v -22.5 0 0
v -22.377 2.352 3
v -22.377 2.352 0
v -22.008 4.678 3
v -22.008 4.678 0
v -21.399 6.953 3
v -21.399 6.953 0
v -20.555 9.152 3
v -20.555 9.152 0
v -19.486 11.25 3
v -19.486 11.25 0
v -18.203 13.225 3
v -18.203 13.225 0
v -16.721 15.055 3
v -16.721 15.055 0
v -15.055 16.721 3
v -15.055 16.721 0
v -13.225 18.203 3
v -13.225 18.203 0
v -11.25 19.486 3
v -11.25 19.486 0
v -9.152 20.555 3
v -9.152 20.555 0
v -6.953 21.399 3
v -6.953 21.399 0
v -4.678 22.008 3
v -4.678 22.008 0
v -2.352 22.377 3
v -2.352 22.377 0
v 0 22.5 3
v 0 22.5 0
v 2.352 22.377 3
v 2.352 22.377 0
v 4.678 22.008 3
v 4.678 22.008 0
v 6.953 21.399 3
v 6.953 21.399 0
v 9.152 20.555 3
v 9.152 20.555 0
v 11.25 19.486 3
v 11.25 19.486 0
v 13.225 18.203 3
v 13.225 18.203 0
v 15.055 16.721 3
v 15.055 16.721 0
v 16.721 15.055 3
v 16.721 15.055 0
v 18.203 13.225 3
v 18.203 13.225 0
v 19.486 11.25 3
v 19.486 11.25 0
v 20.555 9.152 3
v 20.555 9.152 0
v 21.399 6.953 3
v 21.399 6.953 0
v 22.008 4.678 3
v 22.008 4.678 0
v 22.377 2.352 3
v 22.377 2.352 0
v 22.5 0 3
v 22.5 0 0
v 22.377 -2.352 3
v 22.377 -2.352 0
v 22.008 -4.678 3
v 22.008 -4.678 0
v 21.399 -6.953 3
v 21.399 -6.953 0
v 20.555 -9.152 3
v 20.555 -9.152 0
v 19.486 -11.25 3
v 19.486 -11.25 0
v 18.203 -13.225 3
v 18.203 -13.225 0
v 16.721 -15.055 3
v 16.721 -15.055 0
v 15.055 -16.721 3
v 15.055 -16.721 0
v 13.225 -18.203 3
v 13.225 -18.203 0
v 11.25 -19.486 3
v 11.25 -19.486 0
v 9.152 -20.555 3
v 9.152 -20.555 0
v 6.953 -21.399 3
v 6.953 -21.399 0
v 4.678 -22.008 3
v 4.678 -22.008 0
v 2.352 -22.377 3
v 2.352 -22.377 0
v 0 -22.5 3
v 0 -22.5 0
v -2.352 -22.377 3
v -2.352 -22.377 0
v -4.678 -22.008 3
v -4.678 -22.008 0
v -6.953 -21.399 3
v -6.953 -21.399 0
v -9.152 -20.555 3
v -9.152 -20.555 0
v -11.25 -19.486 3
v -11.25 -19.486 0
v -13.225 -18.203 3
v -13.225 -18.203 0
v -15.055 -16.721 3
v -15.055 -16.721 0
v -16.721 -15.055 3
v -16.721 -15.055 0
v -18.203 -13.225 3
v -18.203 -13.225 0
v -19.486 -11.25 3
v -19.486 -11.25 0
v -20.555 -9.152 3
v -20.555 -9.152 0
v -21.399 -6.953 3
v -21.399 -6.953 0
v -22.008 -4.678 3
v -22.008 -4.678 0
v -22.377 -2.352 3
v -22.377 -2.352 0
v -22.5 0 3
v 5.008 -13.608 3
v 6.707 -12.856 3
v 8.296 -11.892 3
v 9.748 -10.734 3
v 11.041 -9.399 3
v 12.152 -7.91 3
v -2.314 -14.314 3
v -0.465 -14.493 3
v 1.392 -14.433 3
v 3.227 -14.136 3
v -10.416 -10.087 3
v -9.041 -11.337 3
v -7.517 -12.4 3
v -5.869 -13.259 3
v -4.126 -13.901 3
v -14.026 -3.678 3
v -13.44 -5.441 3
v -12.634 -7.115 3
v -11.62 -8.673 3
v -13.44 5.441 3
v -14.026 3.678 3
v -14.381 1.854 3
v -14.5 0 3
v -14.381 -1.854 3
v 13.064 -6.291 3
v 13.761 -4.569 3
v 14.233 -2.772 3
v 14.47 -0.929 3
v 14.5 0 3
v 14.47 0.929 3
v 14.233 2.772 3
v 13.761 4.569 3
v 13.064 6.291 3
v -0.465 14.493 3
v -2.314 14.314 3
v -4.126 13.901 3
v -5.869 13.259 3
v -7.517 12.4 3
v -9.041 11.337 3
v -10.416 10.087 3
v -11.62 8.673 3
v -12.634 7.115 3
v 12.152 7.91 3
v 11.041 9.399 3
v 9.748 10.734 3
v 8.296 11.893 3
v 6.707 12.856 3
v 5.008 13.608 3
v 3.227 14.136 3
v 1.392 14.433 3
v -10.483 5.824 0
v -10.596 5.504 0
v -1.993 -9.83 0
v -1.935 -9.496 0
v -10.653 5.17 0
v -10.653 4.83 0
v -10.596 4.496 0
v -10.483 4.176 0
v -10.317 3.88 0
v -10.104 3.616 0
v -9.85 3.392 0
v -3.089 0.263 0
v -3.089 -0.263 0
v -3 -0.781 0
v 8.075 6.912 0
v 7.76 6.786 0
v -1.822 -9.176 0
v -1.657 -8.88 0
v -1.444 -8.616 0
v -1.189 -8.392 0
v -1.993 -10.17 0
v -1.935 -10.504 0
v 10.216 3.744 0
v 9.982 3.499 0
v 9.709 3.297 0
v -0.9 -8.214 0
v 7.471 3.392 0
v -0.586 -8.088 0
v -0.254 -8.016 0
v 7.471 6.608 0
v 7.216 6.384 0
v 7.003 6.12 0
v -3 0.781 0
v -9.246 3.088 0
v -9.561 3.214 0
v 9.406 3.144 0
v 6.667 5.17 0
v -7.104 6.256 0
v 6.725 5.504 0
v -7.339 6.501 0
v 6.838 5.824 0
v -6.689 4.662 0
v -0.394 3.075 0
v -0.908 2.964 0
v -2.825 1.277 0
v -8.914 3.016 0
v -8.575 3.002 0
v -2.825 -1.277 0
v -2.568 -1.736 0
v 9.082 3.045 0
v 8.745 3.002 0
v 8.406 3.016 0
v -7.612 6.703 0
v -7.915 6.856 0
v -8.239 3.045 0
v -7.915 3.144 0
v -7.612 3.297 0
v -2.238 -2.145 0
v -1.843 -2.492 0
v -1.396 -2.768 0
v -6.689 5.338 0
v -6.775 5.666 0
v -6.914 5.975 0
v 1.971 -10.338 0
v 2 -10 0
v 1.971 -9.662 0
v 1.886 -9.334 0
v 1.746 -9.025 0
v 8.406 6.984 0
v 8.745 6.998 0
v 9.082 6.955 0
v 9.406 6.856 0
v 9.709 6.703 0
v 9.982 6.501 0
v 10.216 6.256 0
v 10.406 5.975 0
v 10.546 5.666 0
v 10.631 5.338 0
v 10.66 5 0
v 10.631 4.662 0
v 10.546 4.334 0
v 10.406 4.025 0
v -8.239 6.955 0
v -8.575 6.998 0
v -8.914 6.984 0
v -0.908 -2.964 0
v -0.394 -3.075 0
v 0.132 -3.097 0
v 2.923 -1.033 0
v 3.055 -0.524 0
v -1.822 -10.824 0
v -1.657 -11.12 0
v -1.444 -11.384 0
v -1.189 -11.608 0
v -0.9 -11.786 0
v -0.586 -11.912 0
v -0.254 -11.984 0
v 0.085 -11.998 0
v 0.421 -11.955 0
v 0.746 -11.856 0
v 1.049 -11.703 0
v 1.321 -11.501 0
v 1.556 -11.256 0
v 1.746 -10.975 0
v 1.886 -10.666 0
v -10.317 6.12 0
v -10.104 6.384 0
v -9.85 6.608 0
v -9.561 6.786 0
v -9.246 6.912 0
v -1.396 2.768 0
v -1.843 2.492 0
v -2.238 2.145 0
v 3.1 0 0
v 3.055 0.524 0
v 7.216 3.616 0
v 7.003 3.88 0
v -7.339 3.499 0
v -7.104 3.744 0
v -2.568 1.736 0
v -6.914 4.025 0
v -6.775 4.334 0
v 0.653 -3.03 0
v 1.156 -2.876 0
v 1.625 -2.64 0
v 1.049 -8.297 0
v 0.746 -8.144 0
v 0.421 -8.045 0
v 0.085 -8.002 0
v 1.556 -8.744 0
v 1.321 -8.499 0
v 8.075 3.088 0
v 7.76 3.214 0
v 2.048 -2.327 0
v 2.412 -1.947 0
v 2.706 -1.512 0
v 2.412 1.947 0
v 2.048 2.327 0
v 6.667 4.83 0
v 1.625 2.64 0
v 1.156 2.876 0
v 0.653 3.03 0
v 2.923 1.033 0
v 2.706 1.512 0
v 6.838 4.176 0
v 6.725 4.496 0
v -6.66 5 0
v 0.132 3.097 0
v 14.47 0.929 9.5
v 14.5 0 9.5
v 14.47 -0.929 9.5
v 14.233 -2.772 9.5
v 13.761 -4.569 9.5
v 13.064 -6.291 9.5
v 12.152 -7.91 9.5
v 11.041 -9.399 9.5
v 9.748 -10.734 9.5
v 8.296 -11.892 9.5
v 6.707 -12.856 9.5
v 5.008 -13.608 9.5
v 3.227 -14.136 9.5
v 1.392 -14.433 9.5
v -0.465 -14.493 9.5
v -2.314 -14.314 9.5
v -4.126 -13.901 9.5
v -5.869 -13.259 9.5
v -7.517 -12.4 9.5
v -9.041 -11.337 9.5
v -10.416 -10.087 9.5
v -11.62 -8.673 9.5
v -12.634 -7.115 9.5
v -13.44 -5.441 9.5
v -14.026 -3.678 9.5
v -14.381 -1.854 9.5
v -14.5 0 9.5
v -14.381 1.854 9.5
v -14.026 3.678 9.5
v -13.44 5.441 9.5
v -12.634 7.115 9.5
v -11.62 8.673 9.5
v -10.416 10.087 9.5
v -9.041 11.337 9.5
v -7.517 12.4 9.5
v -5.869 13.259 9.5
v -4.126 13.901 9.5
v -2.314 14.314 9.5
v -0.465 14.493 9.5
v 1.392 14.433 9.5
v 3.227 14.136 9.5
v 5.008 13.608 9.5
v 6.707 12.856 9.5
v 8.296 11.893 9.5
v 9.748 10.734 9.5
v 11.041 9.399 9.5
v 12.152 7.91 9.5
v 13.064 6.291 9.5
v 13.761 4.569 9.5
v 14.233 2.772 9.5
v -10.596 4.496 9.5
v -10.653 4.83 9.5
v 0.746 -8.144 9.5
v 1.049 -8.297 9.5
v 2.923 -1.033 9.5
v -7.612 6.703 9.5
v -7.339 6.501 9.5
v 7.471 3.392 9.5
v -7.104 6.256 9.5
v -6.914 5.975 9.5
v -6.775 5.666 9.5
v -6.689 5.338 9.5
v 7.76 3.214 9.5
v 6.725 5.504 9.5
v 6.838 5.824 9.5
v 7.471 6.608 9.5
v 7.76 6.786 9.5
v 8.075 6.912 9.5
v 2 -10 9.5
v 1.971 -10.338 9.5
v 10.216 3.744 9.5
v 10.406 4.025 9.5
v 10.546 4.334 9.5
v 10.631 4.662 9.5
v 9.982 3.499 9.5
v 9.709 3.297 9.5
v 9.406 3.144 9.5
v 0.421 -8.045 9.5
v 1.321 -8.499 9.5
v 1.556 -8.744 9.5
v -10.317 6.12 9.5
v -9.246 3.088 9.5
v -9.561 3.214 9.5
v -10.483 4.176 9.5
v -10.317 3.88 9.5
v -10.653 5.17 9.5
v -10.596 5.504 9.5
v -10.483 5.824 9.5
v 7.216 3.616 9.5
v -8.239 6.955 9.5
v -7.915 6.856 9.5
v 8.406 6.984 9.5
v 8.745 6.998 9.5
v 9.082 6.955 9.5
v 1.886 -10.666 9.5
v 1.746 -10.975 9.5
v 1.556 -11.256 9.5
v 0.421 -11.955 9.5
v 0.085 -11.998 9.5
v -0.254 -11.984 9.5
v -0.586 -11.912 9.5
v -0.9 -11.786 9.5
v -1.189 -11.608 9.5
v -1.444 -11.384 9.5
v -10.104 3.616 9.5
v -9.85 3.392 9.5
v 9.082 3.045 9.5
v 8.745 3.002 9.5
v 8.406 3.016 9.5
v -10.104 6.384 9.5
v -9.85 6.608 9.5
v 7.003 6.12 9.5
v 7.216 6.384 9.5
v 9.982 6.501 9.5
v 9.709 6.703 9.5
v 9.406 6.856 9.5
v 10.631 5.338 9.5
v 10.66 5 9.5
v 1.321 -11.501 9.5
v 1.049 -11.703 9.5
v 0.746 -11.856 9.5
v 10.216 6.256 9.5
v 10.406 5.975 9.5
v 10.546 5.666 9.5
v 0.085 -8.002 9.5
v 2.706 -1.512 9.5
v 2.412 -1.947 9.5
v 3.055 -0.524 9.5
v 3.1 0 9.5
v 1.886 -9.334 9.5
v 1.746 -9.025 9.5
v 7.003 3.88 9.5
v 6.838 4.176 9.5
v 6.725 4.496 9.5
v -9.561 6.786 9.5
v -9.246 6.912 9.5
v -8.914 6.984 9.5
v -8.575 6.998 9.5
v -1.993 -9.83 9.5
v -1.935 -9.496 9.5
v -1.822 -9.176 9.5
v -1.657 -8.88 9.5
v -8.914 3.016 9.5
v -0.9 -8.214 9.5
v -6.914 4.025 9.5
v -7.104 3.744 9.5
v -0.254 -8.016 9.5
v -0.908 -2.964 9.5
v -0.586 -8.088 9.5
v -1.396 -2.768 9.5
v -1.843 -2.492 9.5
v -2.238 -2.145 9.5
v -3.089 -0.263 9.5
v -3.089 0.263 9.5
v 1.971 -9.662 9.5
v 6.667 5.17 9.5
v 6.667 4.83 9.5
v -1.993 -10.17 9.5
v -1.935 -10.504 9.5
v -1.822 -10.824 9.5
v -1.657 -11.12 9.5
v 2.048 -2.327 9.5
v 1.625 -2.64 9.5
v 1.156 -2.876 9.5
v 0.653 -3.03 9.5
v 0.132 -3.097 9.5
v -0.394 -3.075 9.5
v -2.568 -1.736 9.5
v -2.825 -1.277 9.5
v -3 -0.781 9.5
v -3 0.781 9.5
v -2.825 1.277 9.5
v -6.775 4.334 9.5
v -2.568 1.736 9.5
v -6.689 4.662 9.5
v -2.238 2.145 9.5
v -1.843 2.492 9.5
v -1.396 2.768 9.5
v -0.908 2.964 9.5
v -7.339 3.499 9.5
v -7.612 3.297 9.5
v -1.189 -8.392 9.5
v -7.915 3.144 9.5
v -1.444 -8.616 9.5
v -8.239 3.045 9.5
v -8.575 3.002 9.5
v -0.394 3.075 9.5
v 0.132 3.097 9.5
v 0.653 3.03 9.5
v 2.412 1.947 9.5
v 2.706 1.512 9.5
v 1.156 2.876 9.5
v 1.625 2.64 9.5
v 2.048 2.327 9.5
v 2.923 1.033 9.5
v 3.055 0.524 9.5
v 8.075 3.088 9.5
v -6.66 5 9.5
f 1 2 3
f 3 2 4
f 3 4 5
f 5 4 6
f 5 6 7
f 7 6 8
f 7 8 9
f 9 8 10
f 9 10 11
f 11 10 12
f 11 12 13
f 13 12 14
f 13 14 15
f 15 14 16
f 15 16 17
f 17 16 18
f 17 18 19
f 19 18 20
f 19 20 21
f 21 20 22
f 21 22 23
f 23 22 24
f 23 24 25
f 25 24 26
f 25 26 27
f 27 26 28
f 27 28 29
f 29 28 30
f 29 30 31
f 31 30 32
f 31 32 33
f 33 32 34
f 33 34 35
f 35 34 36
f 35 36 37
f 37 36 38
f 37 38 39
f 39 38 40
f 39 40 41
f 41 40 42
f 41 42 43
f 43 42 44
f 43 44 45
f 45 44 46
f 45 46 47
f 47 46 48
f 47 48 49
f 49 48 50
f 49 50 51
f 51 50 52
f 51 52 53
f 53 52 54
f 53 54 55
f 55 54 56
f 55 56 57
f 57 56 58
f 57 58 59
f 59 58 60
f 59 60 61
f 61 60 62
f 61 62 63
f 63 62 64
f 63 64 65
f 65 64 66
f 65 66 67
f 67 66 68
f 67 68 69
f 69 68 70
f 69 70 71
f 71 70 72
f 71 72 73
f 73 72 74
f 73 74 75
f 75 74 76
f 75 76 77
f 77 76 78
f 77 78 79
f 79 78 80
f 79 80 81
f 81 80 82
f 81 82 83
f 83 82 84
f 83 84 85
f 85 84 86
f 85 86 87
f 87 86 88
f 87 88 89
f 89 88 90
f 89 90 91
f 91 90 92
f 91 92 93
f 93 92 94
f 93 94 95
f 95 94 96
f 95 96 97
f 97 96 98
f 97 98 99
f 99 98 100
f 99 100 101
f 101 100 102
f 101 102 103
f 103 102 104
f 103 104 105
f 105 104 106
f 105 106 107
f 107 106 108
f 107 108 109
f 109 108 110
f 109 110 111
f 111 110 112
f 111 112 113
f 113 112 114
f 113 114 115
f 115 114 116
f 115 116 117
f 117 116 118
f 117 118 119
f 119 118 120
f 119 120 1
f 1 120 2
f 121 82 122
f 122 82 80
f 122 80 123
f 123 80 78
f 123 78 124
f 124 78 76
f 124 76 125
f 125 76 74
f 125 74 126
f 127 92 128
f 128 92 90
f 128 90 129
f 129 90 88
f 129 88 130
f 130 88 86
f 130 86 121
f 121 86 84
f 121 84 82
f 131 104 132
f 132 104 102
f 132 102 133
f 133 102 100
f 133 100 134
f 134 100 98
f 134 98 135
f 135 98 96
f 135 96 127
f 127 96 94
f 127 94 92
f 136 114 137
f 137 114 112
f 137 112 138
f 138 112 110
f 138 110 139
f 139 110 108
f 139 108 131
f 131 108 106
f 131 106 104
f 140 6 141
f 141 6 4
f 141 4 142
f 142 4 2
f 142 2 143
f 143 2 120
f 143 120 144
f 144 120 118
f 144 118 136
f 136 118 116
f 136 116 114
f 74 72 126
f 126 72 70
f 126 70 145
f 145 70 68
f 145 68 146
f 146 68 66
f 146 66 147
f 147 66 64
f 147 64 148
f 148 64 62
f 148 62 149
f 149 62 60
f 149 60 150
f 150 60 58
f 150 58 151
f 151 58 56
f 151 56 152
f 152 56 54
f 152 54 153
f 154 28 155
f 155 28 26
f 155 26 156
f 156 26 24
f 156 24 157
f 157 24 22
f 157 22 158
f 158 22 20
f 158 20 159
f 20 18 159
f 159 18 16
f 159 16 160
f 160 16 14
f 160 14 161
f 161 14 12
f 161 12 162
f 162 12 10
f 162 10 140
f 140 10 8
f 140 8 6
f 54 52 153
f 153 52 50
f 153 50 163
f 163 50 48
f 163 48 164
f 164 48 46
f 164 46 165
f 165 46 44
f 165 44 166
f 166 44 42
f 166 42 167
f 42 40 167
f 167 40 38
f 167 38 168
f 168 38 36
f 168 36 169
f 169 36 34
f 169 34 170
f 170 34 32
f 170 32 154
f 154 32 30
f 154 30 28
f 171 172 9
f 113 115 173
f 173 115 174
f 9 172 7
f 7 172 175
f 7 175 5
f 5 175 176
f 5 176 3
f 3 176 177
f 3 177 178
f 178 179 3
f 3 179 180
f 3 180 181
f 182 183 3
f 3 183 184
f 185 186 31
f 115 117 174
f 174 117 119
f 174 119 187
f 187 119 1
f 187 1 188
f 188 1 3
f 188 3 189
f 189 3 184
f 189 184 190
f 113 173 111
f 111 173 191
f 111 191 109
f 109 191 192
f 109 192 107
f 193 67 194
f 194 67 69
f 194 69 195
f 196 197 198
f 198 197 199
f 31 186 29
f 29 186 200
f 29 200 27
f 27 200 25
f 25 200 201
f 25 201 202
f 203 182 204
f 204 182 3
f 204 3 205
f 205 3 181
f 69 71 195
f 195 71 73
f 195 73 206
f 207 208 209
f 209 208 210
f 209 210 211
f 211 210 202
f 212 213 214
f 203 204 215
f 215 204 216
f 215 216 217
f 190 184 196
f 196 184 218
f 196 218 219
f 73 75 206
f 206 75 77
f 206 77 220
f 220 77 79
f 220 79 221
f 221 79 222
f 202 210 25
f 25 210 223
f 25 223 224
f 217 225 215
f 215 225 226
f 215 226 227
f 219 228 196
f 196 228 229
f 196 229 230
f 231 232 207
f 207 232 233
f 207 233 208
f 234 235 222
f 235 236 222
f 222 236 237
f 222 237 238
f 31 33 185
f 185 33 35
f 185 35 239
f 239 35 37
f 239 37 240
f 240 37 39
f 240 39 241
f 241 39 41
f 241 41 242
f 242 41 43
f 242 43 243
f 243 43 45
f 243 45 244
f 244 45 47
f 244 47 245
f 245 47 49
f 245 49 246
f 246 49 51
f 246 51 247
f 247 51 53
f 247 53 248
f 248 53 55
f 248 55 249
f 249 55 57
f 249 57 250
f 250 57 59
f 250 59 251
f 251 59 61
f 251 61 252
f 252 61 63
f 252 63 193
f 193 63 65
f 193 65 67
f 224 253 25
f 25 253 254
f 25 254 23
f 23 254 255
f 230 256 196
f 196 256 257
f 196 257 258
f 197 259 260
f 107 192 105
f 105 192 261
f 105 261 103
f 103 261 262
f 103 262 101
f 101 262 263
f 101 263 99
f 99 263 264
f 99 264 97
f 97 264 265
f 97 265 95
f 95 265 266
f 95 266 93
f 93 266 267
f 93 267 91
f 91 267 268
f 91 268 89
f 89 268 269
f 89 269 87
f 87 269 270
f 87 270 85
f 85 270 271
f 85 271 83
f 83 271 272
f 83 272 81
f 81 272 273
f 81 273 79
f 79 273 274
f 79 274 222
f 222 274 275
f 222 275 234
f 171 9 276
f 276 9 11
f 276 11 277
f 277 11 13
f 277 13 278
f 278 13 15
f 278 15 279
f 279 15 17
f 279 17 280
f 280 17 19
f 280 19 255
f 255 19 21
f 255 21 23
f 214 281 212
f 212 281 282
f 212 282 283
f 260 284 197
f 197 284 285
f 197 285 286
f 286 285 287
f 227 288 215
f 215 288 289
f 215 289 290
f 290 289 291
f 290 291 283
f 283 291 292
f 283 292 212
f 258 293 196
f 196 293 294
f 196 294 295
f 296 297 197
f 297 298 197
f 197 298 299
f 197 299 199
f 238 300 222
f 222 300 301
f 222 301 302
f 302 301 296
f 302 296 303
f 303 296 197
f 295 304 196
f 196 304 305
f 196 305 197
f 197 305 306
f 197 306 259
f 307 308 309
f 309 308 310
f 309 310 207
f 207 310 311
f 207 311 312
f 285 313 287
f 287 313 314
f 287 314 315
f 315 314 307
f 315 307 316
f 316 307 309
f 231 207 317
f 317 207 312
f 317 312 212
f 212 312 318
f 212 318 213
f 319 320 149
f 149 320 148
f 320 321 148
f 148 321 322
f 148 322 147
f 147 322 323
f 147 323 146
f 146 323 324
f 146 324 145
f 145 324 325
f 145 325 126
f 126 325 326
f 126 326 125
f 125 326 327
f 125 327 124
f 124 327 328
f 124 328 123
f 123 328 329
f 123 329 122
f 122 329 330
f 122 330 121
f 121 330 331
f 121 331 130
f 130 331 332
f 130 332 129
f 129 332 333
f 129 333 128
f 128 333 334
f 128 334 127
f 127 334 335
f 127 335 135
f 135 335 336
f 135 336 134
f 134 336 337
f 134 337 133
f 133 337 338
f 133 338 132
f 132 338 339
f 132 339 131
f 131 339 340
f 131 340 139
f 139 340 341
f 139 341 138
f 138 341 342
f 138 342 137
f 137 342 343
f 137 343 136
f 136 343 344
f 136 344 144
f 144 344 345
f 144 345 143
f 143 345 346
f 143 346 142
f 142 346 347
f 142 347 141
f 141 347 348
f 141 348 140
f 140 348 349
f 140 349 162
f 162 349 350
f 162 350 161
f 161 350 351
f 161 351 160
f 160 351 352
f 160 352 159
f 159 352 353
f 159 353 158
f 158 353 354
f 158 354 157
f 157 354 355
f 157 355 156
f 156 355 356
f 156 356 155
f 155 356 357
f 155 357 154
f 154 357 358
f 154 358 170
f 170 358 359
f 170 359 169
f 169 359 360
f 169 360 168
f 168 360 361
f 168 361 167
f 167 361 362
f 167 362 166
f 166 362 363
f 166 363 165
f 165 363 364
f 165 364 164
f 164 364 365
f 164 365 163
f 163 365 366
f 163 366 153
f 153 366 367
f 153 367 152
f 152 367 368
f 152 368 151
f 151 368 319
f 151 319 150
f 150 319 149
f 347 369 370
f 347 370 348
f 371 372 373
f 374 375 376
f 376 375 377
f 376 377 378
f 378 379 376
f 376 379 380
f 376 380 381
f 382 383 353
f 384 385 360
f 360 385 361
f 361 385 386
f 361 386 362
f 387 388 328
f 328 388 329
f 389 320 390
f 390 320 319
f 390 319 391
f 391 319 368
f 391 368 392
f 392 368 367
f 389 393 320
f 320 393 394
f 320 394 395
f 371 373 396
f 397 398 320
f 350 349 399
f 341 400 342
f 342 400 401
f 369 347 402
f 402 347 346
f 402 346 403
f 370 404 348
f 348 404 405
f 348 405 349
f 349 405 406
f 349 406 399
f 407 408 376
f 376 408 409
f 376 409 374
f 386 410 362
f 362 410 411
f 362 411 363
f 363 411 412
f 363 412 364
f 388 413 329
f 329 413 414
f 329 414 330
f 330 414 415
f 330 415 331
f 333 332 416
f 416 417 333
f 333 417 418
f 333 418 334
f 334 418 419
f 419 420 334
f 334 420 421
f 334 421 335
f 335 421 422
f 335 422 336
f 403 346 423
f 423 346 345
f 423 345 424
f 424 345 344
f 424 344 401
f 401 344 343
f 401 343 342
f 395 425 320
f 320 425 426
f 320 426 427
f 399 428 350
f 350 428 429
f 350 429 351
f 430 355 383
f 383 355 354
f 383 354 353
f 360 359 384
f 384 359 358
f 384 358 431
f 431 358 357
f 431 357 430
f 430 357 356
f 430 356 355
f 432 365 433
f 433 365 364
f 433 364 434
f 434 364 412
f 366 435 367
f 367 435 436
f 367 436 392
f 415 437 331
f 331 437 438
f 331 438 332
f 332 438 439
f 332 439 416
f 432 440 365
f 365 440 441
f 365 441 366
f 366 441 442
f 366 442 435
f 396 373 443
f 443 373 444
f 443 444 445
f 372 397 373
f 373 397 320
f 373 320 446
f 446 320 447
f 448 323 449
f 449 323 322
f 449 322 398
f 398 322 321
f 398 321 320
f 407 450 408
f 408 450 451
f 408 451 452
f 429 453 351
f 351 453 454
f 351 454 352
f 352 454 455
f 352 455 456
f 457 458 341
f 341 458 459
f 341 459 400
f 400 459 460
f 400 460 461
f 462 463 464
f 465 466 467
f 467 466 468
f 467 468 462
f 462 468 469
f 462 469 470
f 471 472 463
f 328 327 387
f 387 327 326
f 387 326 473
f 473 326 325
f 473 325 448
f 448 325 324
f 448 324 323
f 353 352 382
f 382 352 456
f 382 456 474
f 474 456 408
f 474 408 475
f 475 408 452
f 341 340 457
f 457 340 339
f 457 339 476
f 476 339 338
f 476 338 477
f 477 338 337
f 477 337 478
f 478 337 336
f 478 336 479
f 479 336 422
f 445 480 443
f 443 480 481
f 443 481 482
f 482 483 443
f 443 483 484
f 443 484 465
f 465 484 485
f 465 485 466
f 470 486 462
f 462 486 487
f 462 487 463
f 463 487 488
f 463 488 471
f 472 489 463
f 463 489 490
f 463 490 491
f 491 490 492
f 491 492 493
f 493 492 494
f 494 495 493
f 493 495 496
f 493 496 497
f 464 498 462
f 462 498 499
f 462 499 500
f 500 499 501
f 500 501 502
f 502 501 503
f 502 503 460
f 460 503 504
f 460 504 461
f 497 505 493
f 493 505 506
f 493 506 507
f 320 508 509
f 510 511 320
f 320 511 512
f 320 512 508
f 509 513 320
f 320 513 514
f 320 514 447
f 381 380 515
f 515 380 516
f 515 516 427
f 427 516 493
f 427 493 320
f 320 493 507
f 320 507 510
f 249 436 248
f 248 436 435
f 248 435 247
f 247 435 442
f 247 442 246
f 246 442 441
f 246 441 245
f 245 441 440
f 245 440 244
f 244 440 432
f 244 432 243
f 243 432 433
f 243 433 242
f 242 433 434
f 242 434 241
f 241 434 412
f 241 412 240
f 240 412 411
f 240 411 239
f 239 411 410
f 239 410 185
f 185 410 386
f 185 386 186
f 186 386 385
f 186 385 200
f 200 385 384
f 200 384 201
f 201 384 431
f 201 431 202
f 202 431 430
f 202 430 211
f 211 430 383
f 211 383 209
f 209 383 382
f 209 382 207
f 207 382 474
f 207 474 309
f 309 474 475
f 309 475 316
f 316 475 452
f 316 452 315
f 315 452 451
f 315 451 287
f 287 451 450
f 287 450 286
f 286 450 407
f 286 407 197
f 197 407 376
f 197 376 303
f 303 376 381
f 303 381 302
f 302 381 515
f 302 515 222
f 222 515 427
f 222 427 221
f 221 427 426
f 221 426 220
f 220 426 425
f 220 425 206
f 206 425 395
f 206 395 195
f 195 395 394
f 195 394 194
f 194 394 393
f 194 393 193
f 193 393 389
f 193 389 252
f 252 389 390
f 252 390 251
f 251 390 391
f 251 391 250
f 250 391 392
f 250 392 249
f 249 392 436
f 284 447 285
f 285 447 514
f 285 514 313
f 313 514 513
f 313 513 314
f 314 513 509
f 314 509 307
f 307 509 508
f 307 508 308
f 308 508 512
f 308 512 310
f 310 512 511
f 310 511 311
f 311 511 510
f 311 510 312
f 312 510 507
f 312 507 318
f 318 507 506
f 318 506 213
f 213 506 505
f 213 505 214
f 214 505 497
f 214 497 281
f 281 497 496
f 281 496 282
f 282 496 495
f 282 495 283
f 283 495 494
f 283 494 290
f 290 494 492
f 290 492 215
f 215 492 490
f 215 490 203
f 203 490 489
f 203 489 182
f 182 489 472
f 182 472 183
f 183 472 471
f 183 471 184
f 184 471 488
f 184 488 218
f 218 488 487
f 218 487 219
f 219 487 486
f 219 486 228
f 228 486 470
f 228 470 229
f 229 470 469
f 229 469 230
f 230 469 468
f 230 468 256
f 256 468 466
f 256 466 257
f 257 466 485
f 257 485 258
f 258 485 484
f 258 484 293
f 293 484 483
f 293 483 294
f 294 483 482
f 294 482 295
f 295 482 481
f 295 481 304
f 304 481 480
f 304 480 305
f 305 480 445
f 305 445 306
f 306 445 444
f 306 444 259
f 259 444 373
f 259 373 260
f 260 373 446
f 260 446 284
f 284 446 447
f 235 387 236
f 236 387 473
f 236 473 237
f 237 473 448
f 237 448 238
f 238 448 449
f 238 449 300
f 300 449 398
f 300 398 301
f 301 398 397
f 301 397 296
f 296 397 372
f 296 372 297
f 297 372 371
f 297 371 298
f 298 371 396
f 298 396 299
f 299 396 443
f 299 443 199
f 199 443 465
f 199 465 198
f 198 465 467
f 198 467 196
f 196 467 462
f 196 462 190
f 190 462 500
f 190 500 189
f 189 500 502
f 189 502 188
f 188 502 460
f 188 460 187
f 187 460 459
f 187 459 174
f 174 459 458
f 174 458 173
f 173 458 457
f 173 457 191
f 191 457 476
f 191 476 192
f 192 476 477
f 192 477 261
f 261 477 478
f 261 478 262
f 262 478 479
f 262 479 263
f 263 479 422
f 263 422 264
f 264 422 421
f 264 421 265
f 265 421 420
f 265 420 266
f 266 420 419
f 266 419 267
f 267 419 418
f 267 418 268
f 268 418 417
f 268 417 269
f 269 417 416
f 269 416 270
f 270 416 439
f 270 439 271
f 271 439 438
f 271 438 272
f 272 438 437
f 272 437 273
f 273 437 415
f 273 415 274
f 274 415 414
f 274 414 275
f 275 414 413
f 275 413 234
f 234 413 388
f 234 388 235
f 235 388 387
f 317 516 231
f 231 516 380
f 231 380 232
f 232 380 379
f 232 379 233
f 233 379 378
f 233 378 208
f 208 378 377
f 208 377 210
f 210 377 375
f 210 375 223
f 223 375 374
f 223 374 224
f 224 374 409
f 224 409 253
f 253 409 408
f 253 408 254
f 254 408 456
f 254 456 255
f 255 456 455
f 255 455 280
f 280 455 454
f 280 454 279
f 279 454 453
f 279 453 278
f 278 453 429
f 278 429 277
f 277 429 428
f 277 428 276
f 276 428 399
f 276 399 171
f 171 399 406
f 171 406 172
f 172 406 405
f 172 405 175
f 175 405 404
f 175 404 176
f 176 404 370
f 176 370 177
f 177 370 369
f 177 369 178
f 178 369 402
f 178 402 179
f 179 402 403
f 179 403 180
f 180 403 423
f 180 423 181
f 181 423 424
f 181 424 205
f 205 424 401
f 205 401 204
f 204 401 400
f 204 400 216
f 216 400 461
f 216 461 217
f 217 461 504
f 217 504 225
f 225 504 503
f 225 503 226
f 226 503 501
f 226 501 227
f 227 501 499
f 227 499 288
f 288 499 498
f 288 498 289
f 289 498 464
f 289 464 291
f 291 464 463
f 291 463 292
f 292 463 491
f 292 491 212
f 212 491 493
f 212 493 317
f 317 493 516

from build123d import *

# Parameters (mm, degrees)
ESQUISSE1_R             = 22.5
BOSS_EXTRU_1_DEPTH      = 3
ESQUISSE2_R             = 14.5
BOSS_EXTRU_2_DEPTH      = 6.5
ESQUISSE3_R             = 2
ESQUISSE3_R_2           = 3.1
ENL_V_MAT_EXTRU_1_DEPTH = 34.207679835


with BuildPart() as part:
    # Esquisse1 → Boss.-Extru.1 (new body)
    with BuildSketch(Plane.XY):
        Circle(ESQUISSE1_R)
    extrude(amount=BOSS_EXTRU_1_DEPTH)

    # Esquisse2 → Boss.-Extru.2 (add)
    with BuildSketch(Plane.XY.offset(3)):
        with Locations(Location((0, 0, 0), (0, 0, 180))):
            Circle(ESQUISSE2_R)
    extrude(amount=BOSS_EXTRU_2_DEPTH)

    # Esquisse3 → Enlèv. mat.-Extru.1 (cut, through all)
    with BuildSketch(Plane.XY.offset(9.5)):
        with Locations((8.660254038, 5)):
            Circle(ESQUISSE3_R)
        with Locations((-8.660254038, 5)):
            Circle(ESQUISSE3_R)
        with Locations((0, -10)):
            Circle(ESQUISSE3_R)
        Circle(ESQUISSE3_R_2)
    extrude(amount=-ENL_V_MAT_EXTRU_1_DEPTH, mode=Mode.SUBTRACT)


solid = part.part
